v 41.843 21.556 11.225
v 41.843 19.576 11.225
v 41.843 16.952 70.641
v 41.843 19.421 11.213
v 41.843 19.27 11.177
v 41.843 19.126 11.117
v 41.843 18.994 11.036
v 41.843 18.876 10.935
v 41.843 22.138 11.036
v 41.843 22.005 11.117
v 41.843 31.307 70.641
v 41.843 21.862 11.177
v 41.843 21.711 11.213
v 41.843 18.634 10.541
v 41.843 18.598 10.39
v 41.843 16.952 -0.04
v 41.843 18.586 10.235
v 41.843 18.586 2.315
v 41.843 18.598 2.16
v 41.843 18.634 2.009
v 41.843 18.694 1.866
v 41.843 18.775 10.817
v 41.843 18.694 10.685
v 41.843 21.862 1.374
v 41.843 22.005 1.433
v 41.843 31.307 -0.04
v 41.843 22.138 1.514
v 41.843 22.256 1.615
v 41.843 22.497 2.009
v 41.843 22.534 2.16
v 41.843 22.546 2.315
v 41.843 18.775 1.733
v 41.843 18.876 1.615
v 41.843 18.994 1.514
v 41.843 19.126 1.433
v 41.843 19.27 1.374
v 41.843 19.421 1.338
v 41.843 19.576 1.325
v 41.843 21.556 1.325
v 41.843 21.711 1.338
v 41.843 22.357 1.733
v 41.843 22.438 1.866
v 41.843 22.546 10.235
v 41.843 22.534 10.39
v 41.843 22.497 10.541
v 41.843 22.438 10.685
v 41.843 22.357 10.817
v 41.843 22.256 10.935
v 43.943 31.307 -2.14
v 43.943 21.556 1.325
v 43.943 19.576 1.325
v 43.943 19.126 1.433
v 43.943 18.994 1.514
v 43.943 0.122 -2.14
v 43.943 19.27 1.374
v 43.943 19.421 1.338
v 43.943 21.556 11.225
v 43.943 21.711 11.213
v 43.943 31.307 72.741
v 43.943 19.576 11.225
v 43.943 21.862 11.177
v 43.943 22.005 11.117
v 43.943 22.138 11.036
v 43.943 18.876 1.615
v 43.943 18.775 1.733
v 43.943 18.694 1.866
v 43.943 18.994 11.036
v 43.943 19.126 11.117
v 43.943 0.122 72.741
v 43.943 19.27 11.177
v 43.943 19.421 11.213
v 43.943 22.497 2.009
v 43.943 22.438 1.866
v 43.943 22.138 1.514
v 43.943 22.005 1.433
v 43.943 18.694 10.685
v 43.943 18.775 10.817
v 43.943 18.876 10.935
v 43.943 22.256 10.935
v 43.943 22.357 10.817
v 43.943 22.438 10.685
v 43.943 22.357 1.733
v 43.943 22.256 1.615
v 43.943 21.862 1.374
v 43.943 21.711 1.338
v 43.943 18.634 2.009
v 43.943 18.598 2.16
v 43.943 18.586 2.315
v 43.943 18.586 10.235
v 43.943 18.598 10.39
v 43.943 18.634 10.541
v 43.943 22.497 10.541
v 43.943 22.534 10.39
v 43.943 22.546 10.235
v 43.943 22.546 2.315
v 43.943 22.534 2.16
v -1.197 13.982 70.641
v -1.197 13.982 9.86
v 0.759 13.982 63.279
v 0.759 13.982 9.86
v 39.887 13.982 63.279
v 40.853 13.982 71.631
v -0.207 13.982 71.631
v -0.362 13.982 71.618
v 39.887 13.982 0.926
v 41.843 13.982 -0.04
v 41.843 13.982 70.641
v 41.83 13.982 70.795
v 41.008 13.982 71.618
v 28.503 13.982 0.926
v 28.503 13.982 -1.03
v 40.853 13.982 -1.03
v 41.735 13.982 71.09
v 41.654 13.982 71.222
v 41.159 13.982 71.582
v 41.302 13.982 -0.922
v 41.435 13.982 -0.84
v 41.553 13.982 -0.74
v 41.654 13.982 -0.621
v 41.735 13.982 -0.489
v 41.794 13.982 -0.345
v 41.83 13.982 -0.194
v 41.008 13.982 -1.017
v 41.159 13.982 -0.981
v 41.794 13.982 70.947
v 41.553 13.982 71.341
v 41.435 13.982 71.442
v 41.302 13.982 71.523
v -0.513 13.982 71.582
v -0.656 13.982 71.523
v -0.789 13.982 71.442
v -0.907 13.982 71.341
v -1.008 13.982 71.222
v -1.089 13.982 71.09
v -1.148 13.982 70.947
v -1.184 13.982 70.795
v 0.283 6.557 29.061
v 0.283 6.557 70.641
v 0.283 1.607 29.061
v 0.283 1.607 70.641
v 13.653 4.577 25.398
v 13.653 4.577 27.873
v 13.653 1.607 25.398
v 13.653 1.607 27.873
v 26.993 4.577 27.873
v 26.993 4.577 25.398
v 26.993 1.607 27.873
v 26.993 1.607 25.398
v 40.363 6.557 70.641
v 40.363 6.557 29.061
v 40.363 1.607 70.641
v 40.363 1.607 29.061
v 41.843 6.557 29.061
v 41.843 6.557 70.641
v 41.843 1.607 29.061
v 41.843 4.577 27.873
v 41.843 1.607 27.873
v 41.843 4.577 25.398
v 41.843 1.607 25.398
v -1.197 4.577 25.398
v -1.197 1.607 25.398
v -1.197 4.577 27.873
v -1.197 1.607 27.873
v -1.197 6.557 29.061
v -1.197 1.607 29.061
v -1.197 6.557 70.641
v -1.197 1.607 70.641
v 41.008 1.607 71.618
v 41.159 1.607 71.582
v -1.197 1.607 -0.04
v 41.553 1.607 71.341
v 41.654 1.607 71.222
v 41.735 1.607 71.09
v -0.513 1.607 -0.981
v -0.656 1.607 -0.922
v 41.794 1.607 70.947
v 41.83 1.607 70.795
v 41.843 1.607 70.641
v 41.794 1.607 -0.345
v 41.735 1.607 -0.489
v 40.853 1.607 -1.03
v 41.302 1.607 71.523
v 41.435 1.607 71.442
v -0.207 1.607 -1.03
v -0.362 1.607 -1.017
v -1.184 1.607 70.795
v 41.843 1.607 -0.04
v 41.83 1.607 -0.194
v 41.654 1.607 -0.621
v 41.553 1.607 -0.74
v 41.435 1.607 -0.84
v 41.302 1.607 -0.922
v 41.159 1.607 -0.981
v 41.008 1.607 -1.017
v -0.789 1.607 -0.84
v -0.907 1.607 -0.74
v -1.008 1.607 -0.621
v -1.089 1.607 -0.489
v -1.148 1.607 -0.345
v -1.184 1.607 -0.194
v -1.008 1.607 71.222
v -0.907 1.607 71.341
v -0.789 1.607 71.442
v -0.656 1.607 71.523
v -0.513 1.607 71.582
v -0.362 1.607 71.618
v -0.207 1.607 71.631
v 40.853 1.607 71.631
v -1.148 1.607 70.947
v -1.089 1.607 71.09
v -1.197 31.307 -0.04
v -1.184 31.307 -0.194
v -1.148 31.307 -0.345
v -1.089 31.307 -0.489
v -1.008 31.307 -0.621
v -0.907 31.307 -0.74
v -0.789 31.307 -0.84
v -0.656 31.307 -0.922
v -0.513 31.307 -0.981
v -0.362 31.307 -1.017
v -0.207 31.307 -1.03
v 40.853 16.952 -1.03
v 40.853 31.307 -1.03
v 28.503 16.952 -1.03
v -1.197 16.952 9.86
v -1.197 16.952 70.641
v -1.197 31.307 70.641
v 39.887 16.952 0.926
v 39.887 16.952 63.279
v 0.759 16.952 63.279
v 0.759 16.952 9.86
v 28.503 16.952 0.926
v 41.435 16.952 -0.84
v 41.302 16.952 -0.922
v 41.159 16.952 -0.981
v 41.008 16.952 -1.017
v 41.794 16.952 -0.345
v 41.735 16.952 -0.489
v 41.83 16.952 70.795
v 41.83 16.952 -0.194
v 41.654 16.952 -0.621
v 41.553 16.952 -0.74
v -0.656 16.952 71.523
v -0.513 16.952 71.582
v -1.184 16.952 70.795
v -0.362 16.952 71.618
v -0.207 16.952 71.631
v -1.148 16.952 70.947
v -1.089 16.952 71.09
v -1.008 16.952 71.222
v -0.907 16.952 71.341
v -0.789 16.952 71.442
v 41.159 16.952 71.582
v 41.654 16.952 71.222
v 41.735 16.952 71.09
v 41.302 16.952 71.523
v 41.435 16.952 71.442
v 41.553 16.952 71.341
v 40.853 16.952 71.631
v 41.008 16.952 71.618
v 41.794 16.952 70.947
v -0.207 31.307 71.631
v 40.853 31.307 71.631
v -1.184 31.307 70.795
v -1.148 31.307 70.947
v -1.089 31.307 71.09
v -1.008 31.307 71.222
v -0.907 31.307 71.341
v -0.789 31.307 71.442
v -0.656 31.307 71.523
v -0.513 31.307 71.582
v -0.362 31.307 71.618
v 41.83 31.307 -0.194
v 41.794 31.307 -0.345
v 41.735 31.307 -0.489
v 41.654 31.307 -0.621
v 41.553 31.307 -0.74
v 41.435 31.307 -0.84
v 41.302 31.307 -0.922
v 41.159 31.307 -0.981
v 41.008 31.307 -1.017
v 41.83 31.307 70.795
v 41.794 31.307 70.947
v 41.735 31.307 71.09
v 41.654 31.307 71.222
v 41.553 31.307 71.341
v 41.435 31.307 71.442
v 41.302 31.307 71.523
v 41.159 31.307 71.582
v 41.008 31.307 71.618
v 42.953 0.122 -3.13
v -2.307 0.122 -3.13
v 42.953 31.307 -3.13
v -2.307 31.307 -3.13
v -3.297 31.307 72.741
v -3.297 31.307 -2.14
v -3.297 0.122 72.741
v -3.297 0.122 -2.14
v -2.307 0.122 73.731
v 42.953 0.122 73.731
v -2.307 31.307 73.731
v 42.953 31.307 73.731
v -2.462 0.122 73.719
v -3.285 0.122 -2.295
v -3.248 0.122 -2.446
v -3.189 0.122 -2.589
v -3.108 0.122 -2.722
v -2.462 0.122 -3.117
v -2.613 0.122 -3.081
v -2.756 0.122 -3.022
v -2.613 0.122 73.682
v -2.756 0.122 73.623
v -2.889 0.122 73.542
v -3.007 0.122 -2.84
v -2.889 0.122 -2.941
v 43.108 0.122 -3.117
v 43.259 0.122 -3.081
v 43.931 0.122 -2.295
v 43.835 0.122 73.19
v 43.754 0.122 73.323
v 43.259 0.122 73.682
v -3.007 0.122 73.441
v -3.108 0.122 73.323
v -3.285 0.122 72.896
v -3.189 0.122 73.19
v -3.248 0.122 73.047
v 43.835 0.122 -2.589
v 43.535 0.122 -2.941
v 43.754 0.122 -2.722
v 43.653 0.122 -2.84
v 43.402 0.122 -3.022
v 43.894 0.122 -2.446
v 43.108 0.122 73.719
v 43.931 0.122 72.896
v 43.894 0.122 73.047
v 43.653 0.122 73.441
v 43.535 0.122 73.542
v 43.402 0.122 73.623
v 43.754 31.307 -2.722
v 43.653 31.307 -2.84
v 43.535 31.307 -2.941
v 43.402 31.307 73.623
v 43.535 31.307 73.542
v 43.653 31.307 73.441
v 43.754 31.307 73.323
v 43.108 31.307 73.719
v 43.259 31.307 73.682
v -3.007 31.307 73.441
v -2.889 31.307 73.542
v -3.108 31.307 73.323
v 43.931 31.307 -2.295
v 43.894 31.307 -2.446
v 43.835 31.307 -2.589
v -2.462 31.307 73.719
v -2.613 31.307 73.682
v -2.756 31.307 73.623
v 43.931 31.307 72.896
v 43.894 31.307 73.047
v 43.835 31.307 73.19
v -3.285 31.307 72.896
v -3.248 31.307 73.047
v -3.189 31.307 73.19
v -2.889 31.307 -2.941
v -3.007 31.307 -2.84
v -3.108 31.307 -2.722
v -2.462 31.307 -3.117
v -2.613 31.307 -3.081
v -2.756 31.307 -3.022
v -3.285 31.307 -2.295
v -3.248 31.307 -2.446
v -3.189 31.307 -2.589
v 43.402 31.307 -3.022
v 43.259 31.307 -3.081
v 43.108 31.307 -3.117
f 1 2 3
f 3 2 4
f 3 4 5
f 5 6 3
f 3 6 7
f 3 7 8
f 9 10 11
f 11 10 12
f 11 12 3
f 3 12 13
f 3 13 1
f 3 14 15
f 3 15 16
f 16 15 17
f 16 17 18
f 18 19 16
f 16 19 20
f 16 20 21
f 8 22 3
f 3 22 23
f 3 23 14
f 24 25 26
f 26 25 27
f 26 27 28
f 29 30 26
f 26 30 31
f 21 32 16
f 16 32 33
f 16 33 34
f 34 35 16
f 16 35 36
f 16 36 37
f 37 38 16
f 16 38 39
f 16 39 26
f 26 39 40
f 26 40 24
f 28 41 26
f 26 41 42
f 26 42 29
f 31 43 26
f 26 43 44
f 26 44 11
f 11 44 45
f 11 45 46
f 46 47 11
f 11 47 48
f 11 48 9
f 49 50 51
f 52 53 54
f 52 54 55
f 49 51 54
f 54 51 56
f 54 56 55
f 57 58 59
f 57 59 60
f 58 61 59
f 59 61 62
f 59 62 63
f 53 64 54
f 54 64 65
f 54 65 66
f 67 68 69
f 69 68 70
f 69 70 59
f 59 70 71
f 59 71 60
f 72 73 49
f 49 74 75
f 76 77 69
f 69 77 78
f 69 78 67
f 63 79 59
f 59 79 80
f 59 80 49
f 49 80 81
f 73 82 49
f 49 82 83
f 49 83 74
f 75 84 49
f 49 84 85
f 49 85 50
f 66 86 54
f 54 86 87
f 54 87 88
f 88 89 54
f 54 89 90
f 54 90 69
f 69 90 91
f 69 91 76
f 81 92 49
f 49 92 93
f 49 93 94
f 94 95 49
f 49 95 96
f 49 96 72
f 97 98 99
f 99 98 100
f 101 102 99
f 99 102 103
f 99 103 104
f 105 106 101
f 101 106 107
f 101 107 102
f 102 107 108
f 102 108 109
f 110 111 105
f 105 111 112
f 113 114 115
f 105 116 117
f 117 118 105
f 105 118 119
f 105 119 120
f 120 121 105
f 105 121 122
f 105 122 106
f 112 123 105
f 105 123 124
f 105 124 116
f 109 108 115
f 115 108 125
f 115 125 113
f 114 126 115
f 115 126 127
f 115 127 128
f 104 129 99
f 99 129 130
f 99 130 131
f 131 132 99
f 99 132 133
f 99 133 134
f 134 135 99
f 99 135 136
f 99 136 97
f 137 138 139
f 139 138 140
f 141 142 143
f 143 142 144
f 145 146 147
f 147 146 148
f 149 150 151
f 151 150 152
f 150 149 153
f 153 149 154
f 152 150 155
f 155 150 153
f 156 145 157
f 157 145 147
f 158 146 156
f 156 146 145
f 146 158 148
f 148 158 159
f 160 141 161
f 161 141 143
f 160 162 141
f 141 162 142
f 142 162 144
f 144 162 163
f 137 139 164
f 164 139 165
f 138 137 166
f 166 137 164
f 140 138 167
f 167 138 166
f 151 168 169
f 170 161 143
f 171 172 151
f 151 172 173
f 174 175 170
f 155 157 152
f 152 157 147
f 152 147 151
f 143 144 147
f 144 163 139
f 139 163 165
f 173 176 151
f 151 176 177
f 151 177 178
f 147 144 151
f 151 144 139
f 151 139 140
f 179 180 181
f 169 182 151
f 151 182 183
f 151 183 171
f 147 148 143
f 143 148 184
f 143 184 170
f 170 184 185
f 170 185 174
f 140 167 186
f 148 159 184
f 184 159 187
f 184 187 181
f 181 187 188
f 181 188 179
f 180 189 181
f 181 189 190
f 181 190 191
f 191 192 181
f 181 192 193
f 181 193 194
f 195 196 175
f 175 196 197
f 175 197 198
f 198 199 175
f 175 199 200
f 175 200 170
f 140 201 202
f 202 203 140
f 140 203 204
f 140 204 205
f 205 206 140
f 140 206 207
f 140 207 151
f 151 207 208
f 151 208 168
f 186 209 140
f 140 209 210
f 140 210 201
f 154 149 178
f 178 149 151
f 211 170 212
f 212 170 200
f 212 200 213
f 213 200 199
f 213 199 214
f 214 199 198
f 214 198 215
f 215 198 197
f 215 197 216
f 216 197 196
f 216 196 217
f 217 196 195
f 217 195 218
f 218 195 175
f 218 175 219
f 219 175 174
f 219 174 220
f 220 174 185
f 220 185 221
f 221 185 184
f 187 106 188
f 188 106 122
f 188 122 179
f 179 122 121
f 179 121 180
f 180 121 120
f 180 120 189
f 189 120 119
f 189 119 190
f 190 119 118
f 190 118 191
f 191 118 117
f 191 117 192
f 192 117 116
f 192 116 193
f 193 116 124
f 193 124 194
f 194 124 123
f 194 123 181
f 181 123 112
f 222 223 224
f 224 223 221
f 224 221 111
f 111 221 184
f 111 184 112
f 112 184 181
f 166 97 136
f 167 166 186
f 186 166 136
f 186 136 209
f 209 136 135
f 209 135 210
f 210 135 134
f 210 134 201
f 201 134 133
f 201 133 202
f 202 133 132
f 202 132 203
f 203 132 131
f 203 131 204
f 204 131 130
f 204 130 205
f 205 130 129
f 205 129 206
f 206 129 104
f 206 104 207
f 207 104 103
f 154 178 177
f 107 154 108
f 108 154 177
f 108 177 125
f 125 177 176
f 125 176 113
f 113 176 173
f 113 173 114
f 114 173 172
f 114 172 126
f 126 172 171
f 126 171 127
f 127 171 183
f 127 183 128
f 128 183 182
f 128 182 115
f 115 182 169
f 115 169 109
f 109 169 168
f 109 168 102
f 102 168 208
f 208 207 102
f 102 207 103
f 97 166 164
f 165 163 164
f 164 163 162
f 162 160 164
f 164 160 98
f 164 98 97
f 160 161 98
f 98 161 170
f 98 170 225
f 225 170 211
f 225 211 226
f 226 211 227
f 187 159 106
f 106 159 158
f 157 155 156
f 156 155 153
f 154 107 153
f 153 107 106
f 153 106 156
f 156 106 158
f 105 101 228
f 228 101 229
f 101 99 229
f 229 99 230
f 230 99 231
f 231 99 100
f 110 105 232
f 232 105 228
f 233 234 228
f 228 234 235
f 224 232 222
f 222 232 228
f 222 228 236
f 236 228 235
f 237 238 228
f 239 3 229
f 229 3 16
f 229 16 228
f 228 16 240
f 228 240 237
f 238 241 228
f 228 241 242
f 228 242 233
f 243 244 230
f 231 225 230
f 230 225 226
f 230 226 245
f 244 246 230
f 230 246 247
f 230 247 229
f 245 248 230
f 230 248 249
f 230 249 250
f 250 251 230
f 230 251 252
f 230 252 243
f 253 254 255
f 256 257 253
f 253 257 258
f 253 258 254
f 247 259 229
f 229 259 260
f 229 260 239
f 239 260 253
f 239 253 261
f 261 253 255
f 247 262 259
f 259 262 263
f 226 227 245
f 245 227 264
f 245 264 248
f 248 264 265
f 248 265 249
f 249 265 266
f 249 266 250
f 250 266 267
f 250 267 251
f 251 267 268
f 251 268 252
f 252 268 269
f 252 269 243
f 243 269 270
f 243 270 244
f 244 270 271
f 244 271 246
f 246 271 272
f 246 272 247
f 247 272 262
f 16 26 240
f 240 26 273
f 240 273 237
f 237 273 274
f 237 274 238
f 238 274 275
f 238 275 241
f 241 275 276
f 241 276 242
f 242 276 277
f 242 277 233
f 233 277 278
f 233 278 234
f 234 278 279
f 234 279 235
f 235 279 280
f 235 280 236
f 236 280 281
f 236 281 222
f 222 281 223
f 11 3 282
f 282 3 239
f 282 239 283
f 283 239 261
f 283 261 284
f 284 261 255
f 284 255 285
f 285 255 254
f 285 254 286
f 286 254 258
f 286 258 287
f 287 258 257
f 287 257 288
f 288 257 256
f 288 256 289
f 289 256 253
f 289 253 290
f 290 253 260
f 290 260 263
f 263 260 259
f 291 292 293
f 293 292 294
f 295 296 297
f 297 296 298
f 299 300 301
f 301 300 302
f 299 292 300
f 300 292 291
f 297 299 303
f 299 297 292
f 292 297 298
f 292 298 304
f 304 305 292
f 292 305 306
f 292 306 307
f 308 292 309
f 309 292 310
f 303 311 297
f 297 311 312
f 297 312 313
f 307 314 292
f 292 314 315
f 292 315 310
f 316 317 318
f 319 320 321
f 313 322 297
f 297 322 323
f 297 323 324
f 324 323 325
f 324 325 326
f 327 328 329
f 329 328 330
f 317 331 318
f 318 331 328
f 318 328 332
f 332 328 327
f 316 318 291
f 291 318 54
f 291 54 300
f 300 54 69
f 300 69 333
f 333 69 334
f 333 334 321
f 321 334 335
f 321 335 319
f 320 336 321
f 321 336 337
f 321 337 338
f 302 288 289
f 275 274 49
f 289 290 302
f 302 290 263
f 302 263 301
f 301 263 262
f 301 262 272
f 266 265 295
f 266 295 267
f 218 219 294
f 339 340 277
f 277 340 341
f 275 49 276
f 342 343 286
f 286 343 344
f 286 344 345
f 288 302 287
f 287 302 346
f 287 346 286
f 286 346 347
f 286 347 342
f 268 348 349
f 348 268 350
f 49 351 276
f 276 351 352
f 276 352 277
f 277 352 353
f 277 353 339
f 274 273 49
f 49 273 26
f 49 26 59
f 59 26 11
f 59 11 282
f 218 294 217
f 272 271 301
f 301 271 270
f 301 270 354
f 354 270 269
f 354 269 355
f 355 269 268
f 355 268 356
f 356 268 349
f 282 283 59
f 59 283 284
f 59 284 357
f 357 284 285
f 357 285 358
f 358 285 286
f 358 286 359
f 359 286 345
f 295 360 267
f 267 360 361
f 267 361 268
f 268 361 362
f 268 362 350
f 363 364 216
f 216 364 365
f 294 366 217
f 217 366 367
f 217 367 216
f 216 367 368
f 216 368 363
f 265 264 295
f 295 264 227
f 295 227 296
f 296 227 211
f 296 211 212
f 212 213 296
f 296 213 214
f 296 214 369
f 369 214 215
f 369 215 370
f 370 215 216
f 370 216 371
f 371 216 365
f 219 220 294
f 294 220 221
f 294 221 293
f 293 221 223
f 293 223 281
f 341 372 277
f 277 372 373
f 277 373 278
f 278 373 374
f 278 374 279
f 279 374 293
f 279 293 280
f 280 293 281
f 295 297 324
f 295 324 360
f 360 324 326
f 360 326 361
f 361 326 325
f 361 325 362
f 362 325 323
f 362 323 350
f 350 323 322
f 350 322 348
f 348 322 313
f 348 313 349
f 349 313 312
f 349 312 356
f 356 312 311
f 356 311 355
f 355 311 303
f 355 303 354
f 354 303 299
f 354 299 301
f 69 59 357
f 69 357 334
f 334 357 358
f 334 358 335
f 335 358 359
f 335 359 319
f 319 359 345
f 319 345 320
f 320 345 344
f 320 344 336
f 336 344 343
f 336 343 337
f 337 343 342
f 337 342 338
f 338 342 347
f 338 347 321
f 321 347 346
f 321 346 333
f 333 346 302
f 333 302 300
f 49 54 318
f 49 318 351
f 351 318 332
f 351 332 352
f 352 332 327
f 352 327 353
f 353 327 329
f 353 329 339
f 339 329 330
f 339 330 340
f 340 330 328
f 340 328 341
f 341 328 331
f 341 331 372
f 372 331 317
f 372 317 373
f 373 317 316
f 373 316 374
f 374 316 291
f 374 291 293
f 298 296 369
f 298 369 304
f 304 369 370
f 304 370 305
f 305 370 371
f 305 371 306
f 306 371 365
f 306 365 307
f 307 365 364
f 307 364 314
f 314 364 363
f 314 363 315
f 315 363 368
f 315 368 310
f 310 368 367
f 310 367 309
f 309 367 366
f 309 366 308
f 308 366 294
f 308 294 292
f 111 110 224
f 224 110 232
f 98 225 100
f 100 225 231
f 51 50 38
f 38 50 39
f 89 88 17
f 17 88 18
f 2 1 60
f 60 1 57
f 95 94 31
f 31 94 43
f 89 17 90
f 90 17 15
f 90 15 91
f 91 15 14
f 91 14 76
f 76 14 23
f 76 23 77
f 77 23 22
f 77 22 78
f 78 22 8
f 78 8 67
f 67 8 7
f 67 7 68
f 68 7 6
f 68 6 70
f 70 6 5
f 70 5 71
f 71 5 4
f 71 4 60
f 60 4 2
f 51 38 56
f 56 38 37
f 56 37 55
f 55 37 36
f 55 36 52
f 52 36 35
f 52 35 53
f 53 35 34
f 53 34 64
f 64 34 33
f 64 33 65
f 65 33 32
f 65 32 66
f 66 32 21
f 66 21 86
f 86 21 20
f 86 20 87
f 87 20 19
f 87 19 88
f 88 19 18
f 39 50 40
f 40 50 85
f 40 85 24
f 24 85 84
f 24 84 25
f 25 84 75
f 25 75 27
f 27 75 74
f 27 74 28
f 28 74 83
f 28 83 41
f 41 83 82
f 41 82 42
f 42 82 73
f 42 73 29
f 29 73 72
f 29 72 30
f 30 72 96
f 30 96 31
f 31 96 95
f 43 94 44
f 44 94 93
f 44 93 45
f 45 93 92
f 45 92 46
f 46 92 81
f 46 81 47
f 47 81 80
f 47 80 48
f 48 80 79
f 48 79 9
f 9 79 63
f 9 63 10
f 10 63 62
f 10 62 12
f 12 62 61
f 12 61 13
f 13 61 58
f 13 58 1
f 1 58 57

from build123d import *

# Parameters (mm, degrees)
PCB_DIMENSIONS_W    = 47.716732244
PCB_DIMENSIONS_H    = 77.636732244
BOSS_EXTRUDE3_DEPTH = 1.5
SKETCH5_W           = 47.716732244
SKETCH5_H           = 77.636732244
SKETCH5_W_2         = 43.474091557
SKETCH5_H_2         = 73.394091557
BOSS_EXTRUDE5_DEPTH = 30
FILLET1_R           = 1
SKETCH9_W           = 1.93805105
SKETCH9_H           = 42
SKETCH9_W_2         = 1.938051049
BOSS_EXTRUDE6_DEPTH = 5
SKETCH14_W          = 15
SKETCH14_H          = 2.5
BOSS_EXTRUDE7_DEPTH = 3
SKETCH15_W          = 75.636732244
SKETCH15_H          = 3
BOSS_EXTRUDE8_DEPTH = 46
SKETCH17_W          = 39.522771214
SKETCH17_H          = 62.982276128
CUT_EXTRUDE1_DEPTH  = 3
CUT_EXTRUDE2_DEPTH  = 3
SKETCH19_W          = 10
SKETCH19_H          = 4
CUT_EXTRUDE3_DEPTH  = 10
FILLET2_R           = 1
SCALE1_SCALE        = 0.99


with BuildPart() as part:
    # PCB Dimensions → Boss-Extrude3 (new body)
    with BuildSketch(Plane(origin=(0, 0, 0), x_dir=(1, 0, 0), z_dir=(0, 1, 0))):
        with Locations((20.322832216, -35.282832216)):
            Rectangle(PCB_DIMENSIONS_W, PCB_DIMENSIONS_H)
    extrude(amount=BOSS_EXTRUDE3_DEPTH)

    # Sketch5 → Boss-Extrude5 (add)
    with BuildSketch(Plane(origin=(0, 1.5, 0), x_dir=(1, 0, 0), z_dir=(0, 1, 0))):
        with Locations((20.322832216, -35.282832216)):
            Rectangle(SKETCH5_W, SKETCH5_H)
        with Locations((20.322832217, -35.282832217)):
            Rectangle(SKETCH5_W_2, SKETCH5_H_2, mode=Mode.SUBTRACT)
    extrude(amount=BOSS_EXTRUDE5_DEPTH)

    # Fillet1
    fillet1_edges = [part.edges().sort_by_distance(p)[0] for p in [
        (42.059877995, 16.5, -1.414213562),
        (-1.414213562, 16.5, -1.414213562),
        (-1.414213562, 16.5, 71.979877995),
        (42.059877995, 16.5, 71.979877995),
        (44.181198338, 15.75, 74.101198338),
        (-3.535533906, 15.75, 74.101198338),
        (-3.535533906, 15.75, -3.535533906),
        (44.181198338, 15.75, -3.535533906),
    ]]
    fillet(fillet1_edges, radius=FILLET1_R)

    # Sketch9 → Boss-Extrude6 (add)
    with BuildSketch(Plane(origin=(0, 1.5, 0), x_dir=(1, 0, 0), z_dir=(0, 1, 0))):
        with Locations((-0.88911969, -49.979881394)):
            Rectangle(SKETCH9_W, SKETCH9_H)
        with Locations((41.534784122, -49.979881394)):
            Rectangle(SKETCH9_W_2, SKETCH9_H)
    extrude(amount=BOSS_EXTRUDE6_DEPTH)

    # Sketch14 → Boss-Extrude7 (add)
    with BuildSketch(Plane(origin=(0, 1.5, 0), x_dir=(1, 0, 0), z_dir=(0, 1, 0))):
        with Locations((6.085786438, -26.529881394)):
            Rectangle(SKETCH14_W, SKETCH14_H)
        with Locations((34.559877995, -26.529881394)):
            Rectangle(SKETCH14_W, SKETCH14_H)
    extrude(amount=BOSS_EXTRUDE7_DEPTH)

    # Sketch15 → Boss-Extrude8 (add)
    with BuildSketch(Plane(origin=(44.181198338, 0, 0), x_dir=(0, 0, -1), z_dir=(1, 0, 0))):
        with Locations((-35.282832216, 15.5)):
            Rectangle(SKETCH15_W, SKETCH15_H)
    extrude(amount=-BOSS_EXTRUDE8_DEPTH)

    # Sketch17 → Cut-Extrude1 (cut)
    with BuildSketch(Plane(origin=(0, 17, 0), x_dir=(1, 0, 0), z_dir=(0, 1, 0))):
        with Locations((20.322832216, -32.052584673)):
            Rectangle(SKETCH17_W, SKETCH17_H)
    extrude(amount=-CUT_EXTRUDE1_DEPTH, mode=Mode.SUBTRACT)

    # Sketch18 → Cut-Extrude2 (cut)
    with BuildSketch(Plane(origin=(0, 17, 0), x_dir=(1, 0, 0), z_dir=(0, 1, 0))):
        with BuildLine():
            Line((-1.414213562, -9.585786438), (28.585786438, -9.585786438))
            Line((28.585786438, -9.585786438), (28.585786438, 1.414213562))
            Line((28.585786438, 1.414213562), (-0.414213562, 1.414213562))
            ThreePointArc((-0.414213562, 1.414213562), (-1.121320344, 1.121320344), (-1.414213562, 0.414213562))
            Line((-1.414213562, 0.414213562), (-1.414213562, -9.585786438))
        make_face()
    extrude(amount=-CUT_EXTRUDE2_DEPTH, mode=Mode.SUBTRACT)

    # Sketch19 → Cut-Extrude3 (cut)
    with BuildSketch(Plane(origin=(44.181198338, 0, 0), x_dir=(0, 0, -1), z_dir=(1, 0, 0))):
        with Locations((-5.964466094, 20.65)):
            Rectangle(SKETCH19_W, SKETCH19_H)
    extrude(amount=-CUT_EXTRUDE3_DEPTH, mode=Mode.SUBTRACT)

    # Fillet2
    fillet2_edges = [part.edges().sort_by_distance(p)[0] for p in [
        (43.120538167, 22.65, 0.964466094),
        (43.120538167, 18.65, 0.964466094),
        (43.120538167, 18.65, 10.964466094),
        (43.120538167, 22.65, 10.964466094),
    ]]
    fillet(fillet2_edges, radius=FILLET2_R)


with BuildPart() as part_1:
    # Scale1: scaled about (20.339813051, 12.239416384, 37.051144502)
    add(part.part.scale(SCALE1_SCALE).moved(Location((0.203398131, 0.122394164, 0.370511445))))


solid = part_1.part
